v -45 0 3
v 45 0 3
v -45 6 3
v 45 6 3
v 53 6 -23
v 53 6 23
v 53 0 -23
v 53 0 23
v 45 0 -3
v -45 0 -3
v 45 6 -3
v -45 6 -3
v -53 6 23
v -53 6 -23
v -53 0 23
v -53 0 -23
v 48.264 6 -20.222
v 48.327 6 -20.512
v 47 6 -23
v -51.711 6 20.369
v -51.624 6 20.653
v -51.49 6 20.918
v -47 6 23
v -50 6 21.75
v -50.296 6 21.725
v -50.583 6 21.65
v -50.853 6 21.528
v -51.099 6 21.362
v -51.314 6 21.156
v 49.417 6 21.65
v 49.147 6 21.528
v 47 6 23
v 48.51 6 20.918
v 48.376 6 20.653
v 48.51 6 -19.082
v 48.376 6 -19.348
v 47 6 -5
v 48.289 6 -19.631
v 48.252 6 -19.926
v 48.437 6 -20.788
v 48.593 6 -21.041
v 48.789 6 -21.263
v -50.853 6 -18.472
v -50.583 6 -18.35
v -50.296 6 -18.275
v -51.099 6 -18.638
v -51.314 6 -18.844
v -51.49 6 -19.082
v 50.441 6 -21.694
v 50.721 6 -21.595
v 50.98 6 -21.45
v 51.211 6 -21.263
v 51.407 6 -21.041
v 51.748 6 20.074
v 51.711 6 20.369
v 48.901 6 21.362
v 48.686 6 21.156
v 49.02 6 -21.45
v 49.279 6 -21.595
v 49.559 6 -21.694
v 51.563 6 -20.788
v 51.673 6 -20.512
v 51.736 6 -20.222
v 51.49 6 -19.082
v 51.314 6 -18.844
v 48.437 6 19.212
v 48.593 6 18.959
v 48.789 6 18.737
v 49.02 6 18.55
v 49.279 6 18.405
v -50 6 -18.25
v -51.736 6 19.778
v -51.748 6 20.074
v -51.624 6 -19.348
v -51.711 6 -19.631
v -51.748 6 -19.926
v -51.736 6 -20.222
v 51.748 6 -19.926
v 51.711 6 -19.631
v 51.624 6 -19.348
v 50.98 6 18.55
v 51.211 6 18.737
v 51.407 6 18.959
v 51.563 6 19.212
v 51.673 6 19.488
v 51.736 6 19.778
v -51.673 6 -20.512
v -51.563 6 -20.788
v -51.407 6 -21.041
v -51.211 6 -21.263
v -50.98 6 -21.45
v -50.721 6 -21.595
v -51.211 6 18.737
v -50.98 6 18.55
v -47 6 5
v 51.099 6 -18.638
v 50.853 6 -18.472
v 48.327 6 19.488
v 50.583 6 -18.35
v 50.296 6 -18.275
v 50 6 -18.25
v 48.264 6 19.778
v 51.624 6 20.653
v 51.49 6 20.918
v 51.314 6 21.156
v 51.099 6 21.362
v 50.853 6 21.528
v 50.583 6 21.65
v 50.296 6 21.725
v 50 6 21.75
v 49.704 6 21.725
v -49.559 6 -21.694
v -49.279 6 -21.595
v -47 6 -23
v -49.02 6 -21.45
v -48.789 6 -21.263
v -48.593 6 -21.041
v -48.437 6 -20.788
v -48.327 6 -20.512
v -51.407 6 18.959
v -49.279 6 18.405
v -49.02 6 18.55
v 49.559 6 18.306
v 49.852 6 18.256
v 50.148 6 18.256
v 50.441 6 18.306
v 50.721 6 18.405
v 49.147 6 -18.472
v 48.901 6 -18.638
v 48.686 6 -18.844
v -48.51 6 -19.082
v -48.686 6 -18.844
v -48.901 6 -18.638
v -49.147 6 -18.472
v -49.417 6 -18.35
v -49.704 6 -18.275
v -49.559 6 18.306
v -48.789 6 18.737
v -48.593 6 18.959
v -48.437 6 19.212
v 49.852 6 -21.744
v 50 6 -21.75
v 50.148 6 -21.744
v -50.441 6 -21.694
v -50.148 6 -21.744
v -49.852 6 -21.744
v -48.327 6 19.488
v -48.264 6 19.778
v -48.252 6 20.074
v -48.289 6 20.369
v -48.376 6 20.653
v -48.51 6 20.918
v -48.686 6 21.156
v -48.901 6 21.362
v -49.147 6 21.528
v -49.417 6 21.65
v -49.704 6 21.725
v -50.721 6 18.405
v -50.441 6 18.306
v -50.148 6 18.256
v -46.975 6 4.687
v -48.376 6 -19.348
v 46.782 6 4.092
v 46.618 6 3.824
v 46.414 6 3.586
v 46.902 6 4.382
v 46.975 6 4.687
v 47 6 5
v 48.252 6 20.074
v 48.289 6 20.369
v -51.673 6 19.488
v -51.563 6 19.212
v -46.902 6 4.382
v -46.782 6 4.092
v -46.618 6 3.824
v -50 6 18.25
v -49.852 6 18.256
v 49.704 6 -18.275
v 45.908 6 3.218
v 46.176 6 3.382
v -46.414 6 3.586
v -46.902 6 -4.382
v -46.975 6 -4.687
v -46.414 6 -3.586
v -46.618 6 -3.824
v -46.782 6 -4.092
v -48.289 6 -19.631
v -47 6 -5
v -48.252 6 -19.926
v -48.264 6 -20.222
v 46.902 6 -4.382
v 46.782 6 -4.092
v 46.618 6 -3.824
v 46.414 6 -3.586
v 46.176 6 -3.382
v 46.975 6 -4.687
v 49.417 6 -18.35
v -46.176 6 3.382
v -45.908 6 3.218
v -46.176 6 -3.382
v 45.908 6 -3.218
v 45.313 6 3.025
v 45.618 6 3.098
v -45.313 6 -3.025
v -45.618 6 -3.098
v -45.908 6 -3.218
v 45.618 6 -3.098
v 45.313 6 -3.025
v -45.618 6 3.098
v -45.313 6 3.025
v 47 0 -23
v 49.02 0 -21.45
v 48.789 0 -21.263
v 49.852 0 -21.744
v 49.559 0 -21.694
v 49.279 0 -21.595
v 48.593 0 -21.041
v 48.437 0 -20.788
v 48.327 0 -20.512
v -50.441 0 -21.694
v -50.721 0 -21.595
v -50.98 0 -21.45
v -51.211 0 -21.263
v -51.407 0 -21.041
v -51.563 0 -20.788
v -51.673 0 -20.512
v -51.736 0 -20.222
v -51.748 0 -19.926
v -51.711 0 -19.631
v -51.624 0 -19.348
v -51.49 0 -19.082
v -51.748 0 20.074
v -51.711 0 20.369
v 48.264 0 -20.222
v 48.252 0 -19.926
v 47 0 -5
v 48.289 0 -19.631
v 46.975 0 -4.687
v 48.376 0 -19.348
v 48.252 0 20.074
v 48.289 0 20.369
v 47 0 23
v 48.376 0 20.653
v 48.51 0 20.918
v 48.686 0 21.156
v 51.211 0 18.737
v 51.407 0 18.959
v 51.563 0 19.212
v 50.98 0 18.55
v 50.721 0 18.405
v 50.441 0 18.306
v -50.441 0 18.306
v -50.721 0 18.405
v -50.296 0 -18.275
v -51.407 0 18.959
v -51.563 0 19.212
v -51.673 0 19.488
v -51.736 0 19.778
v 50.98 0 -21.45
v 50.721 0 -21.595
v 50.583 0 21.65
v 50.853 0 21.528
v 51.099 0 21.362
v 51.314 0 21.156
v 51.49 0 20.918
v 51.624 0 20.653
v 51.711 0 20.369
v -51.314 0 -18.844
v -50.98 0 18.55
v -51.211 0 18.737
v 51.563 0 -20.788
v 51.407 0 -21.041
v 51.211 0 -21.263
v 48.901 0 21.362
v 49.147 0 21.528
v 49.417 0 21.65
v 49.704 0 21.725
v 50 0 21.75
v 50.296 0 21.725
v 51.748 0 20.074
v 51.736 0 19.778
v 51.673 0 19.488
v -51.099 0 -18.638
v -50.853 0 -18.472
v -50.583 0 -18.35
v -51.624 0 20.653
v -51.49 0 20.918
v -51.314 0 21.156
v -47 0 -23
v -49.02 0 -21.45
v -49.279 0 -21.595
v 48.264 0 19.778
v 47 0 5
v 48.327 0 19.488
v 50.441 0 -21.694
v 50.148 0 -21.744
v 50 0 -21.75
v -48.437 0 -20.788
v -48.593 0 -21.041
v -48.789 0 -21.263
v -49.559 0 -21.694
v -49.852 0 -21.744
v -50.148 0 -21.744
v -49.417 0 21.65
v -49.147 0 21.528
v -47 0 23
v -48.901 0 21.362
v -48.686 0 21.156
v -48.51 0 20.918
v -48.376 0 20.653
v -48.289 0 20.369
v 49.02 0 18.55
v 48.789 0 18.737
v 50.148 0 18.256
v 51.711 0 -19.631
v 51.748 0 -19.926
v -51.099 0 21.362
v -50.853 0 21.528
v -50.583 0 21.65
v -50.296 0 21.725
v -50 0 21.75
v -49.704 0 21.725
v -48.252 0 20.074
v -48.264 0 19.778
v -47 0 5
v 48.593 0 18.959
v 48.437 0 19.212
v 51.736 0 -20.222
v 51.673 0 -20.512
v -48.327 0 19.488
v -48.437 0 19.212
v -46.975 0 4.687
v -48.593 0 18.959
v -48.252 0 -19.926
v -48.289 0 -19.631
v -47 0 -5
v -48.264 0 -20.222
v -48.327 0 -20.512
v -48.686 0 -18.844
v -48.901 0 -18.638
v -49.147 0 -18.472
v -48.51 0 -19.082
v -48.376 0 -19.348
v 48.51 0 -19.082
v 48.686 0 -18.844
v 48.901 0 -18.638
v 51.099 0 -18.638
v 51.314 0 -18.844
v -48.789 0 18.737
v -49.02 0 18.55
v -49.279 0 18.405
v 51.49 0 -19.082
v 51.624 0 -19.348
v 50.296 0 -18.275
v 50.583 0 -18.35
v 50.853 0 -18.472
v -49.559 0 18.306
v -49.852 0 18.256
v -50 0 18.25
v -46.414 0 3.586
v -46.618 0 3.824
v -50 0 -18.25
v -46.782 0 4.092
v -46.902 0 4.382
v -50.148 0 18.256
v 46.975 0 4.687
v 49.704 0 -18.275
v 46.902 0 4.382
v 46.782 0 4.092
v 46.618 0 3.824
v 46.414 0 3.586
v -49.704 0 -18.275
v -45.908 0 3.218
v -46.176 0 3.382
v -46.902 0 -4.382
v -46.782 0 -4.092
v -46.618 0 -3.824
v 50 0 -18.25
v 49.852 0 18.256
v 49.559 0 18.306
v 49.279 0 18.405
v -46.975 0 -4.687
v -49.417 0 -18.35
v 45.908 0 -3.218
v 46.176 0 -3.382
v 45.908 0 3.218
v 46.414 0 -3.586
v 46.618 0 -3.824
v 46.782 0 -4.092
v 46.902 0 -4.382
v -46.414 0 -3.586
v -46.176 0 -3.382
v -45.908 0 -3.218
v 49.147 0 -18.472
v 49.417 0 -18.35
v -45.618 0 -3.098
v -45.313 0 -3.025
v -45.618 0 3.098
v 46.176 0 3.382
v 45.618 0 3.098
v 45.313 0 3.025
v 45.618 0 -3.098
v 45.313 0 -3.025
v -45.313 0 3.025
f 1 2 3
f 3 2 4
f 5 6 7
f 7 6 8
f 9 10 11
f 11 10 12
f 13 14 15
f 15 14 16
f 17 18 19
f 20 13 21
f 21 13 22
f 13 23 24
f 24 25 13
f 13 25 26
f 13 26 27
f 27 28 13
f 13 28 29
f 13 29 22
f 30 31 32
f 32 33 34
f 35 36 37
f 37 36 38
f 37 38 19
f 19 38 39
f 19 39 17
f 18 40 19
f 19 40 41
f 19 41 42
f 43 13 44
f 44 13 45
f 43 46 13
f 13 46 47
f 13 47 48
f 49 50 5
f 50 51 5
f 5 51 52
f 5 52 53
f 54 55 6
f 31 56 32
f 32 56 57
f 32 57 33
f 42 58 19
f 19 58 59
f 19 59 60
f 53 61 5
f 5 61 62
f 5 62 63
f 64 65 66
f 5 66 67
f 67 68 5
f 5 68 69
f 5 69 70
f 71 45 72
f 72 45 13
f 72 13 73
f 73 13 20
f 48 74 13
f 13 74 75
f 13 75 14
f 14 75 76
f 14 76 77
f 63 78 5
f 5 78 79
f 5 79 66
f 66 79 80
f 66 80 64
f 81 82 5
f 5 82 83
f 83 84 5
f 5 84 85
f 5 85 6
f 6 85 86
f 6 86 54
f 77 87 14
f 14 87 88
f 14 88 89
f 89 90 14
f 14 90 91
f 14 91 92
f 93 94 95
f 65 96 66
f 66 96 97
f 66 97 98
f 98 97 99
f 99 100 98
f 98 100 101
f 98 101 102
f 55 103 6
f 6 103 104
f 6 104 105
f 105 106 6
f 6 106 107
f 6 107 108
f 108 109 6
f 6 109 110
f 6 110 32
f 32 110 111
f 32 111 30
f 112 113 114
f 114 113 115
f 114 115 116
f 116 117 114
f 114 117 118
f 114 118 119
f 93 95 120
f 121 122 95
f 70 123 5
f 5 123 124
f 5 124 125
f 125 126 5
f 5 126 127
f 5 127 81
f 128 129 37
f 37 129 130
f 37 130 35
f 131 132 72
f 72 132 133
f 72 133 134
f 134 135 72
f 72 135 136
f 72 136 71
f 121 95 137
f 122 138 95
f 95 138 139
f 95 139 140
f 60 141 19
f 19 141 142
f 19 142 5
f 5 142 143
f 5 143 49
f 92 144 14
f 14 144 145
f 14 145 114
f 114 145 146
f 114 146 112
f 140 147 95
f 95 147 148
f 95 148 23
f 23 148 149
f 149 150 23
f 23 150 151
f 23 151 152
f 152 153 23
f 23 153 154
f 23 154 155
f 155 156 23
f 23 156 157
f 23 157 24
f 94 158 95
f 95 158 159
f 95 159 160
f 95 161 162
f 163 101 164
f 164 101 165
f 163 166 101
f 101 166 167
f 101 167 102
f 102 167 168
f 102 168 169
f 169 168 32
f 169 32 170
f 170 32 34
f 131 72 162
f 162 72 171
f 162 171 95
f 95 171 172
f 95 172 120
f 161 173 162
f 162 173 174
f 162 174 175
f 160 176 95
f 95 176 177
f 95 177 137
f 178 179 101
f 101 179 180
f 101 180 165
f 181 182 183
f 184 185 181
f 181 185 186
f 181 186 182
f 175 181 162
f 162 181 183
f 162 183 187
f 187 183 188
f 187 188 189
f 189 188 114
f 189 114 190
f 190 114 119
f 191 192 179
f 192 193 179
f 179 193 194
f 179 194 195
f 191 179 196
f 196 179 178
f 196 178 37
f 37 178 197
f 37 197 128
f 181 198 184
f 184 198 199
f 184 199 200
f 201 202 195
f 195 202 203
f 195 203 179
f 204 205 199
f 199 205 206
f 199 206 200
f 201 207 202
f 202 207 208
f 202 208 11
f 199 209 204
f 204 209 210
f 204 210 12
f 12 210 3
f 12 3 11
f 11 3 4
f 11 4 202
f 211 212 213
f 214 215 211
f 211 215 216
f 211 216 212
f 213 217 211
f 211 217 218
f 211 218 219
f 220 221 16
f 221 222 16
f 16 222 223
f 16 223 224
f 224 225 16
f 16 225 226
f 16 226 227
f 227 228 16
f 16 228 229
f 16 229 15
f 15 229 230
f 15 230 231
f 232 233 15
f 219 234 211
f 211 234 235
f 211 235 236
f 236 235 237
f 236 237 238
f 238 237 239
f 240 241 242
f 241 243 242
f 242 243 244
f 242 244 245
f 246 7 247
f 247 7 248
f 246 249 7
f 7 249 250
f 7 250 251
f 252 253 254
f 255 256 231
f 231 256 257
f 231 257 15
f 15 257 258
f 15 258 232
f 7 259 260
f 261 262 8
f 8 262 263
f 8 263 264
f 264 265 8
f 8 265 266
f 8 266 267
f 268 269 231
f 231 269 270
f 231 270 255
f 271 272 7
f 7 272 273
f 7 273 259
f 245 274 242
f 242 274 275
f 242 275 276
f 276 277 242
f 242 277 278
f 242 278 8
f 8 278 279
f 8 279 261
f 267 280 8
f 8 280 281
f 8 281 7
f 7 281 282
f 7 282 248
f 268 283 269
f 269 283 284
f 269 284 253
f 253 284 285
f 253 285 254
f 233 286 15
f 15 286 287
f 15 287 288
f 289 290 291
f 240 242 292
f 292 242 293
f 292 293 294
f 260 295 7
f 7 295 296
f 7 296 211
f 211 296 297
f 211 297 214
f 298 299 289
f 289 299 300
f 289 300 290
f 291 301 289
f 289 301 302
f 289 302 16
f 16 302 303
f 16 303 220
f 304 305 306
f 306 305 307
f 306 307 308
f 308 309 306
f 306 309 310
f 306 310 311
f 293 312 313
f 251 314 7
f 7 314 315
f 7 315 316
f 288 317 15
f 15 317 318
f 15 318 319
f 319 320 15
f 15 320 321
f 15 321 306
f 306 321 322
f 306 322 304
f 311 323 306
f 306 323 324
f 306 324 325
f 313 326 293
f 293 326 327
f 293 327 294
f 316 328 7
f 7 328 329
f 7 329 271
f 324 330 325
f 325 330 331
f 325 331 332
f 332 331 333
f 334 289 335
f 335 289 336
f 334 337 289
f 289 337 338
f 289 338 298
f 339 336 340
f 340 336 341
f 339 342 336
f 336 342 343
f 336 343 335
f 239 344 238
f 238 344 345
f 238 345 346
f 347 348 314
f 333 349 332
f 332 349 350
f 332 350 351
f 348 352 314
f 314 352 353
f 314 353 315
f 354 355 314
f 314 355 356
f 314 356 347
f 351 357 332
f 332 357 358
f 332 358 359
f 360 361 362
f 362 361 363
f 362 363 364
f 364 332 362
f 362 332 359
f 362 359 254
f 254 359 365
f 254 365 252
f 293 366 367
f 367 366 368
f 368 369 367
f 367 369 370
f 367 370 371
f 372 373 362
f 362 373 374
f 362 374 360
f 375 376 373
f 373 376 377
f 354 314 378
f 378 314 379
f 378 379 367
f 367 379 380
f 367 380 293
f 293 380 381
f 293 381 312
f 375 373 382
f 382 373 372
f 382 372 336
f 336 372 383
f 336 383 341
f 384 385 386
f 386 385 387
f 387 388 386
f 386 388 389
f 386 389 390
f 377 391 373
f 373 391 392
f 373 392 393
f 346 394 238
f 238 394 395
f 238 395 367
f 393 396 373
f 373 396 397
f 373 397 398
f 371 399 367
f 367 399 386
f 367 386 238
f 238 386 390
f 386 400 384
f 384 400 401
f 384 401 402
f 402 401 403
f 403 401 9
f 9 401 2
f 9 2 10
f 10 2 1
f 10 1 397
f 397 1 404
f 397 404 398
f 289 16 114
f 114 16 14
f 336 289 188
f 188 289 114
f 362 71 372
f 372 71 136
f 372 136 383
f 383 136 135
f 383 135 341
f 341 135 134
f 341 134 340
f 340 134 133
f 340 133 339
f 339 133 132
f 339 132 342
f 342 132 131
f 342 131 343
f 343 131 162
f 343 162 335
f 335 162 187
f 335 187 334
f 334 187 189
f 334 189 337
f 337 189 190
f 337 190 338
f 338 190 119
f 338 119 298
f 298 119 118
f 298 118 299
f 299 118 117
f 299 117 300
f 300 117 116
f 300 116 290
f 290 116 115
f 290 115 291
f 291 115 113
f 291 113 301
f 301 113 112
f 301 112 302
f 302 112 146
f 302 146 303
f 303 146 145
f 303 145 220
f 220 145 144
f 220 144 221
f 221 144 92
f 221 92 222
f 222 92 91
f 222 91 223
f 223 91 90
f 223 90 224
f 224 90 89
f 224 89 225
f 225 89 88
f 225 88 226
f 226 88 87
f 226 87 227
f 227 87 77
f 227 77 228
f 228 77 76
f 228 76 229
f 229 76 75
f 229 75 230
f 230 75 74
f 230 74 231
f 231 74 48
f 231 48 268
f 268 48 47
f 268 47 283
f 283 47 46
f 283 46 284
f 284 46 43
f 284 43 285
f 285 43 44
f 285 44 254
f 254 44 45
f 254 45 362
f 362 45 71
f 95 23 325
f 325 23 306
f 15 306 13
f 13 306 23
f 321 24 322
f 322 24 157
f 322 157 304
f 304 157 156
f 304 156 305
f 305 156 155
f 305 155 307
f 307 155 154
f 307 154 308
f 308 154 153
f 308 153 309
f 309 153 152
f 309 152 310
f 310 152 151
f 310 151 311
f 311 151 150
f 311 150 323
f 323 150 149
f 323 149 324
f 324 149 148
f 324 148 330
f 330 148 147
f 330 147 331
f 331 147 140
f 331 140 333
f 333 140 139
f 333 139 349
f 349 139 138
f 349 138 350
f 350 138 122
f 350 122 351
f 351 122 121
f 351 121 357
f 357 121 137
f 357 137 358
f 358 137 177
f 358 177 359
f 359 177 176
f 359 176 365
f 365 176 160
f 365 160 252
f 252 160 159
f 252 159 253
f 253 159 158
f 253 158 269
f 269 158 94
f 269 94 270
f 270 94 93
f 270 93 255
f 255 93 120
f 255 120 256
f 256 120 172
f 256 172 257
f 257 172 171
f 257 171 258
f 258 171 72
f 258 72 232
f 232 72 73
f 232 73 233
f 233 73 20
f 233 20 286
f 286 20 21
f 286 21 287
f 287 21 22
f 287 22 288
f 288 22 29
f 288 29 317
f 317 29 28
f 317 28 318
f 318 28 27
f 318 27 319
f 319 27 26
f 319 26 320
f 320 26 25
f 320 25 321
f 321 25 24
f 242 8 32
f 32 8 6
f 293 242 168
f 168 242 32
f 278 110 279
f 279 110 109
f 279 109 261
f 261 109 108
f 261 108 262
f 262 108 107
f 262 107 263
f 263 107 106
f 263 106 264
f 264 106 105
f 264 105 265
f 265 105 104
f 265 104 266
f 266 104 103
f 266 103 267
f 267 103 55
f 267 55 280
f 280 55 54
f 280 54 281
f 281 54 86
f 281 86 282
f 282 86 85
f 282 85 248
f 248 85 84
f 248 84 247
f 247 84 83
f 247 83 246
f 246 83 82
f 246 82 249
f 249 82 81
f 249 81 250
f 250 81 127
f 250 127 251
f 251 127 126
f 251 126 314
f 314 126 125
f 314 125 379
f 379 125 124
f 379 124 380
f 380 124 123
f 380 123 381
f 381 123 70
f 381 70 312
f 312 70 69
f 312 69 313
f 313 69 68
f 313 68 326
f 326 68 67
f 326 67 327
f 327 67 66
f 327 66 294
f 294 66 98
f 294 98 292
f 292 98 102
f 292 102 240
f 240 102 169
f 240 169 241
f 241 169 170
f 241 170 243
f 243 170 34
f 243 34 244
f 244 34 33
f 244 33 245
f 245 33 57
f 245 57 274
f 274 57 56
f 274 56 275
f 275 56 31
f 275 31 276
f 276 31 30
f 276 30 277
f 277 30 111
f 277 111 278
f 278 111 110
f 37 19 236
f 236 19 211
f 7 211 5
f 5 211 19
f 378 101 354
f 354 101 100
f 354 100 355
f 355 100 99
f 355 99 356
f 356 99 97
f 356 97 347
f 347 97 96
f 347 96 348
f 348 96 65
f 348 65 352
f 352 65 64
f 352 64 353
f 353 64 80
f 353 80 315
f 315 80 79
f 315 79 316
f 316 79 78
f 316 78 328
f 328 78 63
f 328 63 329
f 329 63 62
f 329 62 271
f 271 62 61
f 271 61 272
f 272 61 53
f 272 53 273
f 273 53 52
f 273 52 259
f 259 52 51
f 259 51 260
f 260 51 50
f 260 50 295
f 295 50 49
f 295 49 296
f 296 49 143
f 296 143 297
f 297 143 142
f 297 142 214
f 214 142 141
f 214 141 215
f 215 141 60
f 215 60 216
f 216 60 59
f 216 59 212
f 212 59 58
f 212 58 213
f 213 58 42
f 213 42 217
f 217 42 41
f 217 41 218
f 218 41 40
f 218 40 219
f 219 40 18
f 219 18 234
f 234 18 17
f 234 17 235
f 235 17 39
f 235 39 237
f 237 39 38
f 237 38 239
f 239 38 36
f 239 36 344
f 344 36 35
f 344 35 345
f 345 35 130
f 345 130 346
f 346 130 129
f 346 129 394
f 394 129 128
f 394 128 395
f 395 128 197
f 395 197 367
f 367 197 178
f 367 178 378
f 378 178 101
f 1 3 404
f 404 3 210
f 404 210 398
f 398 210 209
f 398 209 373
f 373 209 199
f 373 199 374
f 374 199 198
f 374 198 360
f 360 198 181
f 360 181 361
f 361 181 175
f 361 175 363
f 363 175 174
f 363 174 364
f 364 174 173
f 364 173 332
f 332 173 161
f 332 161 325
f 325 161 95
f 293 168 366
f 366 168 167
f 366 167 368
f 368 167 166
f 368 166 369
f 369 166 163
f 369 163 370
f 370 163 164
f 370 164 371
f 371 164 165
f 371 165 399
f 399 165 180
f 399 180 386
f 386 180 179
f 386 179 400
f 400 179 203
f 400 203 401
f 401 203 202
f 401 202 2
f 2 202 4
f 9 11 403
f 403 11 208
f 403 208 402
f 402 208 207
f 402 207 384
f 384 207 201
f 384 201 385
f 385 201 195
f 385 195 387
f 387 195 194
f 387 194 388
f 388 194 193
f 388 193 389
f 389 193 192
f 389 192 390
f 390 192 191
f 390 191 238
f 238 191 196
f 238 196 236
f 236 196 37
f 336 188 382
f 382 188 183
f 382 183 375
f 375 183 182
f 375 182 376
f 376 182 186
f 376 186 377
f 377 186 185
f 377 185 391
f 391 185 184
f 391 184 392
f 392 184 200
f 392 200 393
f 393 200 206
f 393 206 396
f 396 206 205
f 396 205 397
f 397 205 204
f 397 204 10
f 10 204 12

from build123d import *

# Parameters (mm, degrees)
SKETCH1_W           = 106
SKETCH1_H           = 6
BOSS_EXTRUDE1_DEPTH = 6
SKETCH2_W           = 6
SKETCH2_H           = 20
SKETCH2_R           = 1.75
BOSS_EXTRUDE2_DEPTH = 6
FILLET1_R           = 2


with BuildPart() as part:
    # Sketch1 → Boss-Extrude1 (new body)
    with BuildSketch(Plane(origin=(0, 0, 0), x_dir=(1, 0, 0), z_dir=(0, 1, 0))):
        Rectangle(SKETCH1_W, SKETCH1_H)
    extrude(amount=BOSS_EXTRUDE1_DEPTH)

    # Sketch2 → Boss-Extrude2 (add)
    # profile 1 of 4: a face of its own
    with BuildSketch(Plane(origin=(0, 6, 0), x_dir=(1, 0, 0), z_dir=(0, 1, 0))):
        with Locations((-50, 13)):
            Rectangle(SKETCH2_W, SKETCH2_H)
        with Locations(Location((-50, 20, 0), (0, 0, 270))):
            Circle(SKETCH2_R, mode=Mode.SUBTRACT)
    # profile 2 of 4: a face of its own
    with BuildSketch(Plane(origin=(0, 6, 0), x_dir=(1, 0, 0), z_dir=(0, 1, 0))):
        with Locations((-50, -13)):
            Rectangle(SKETCH2_W, SKETCH2_H)
        with Locations(Location((-50, -20, 0), (0, 0, 90))):
            Circle(SKETCH2_R, mode=Mode.SUBTRACT)
    # profile 3 of 4: a face of its own
    with BuildSketch(Plane(origin=(0, 6, 0), x_dir=(1, 0, 0), z_dir=(0, 1, 0))):
        with Locations((50, -13)):
            Rectangle(SKETCH2_W, SKETCH2_H)
        with Locations(Location((50, -20, 0), (0, 0, 270))):
            Circle(SKETCH2_R, mode=Mode.SUBTRACT)
    # profile 4 of 4: a face of its own
    with BuildSketch(Plane(origin=(0, 6, 0), x_dir=(1, 0, 0), z_dir=(0, 1, 0))):
        with Locations((50, 13)):
            Rectangle(SKETCH2_W, SKETCH2_H)
        with Locations(Location((50, 20, 0), (0, 0, 90))):
            Circle(SKETCH2_R, mode=Mode.SUBTRACT)
    extrude(amount=-BOSS_EXTRUDE2_DEPTH)

    # Fillet1
    fillet1_edges = [part.edges().sort_by_distance(p)[0] for p in [
        (-47, 3, -3),
        (-47, 3, 3),
        (47, 3, 3),
        (47, 3, -3),
    ]]
    fillet(fillet1_edges, radius=FILLET1_R)


solid = part.part
